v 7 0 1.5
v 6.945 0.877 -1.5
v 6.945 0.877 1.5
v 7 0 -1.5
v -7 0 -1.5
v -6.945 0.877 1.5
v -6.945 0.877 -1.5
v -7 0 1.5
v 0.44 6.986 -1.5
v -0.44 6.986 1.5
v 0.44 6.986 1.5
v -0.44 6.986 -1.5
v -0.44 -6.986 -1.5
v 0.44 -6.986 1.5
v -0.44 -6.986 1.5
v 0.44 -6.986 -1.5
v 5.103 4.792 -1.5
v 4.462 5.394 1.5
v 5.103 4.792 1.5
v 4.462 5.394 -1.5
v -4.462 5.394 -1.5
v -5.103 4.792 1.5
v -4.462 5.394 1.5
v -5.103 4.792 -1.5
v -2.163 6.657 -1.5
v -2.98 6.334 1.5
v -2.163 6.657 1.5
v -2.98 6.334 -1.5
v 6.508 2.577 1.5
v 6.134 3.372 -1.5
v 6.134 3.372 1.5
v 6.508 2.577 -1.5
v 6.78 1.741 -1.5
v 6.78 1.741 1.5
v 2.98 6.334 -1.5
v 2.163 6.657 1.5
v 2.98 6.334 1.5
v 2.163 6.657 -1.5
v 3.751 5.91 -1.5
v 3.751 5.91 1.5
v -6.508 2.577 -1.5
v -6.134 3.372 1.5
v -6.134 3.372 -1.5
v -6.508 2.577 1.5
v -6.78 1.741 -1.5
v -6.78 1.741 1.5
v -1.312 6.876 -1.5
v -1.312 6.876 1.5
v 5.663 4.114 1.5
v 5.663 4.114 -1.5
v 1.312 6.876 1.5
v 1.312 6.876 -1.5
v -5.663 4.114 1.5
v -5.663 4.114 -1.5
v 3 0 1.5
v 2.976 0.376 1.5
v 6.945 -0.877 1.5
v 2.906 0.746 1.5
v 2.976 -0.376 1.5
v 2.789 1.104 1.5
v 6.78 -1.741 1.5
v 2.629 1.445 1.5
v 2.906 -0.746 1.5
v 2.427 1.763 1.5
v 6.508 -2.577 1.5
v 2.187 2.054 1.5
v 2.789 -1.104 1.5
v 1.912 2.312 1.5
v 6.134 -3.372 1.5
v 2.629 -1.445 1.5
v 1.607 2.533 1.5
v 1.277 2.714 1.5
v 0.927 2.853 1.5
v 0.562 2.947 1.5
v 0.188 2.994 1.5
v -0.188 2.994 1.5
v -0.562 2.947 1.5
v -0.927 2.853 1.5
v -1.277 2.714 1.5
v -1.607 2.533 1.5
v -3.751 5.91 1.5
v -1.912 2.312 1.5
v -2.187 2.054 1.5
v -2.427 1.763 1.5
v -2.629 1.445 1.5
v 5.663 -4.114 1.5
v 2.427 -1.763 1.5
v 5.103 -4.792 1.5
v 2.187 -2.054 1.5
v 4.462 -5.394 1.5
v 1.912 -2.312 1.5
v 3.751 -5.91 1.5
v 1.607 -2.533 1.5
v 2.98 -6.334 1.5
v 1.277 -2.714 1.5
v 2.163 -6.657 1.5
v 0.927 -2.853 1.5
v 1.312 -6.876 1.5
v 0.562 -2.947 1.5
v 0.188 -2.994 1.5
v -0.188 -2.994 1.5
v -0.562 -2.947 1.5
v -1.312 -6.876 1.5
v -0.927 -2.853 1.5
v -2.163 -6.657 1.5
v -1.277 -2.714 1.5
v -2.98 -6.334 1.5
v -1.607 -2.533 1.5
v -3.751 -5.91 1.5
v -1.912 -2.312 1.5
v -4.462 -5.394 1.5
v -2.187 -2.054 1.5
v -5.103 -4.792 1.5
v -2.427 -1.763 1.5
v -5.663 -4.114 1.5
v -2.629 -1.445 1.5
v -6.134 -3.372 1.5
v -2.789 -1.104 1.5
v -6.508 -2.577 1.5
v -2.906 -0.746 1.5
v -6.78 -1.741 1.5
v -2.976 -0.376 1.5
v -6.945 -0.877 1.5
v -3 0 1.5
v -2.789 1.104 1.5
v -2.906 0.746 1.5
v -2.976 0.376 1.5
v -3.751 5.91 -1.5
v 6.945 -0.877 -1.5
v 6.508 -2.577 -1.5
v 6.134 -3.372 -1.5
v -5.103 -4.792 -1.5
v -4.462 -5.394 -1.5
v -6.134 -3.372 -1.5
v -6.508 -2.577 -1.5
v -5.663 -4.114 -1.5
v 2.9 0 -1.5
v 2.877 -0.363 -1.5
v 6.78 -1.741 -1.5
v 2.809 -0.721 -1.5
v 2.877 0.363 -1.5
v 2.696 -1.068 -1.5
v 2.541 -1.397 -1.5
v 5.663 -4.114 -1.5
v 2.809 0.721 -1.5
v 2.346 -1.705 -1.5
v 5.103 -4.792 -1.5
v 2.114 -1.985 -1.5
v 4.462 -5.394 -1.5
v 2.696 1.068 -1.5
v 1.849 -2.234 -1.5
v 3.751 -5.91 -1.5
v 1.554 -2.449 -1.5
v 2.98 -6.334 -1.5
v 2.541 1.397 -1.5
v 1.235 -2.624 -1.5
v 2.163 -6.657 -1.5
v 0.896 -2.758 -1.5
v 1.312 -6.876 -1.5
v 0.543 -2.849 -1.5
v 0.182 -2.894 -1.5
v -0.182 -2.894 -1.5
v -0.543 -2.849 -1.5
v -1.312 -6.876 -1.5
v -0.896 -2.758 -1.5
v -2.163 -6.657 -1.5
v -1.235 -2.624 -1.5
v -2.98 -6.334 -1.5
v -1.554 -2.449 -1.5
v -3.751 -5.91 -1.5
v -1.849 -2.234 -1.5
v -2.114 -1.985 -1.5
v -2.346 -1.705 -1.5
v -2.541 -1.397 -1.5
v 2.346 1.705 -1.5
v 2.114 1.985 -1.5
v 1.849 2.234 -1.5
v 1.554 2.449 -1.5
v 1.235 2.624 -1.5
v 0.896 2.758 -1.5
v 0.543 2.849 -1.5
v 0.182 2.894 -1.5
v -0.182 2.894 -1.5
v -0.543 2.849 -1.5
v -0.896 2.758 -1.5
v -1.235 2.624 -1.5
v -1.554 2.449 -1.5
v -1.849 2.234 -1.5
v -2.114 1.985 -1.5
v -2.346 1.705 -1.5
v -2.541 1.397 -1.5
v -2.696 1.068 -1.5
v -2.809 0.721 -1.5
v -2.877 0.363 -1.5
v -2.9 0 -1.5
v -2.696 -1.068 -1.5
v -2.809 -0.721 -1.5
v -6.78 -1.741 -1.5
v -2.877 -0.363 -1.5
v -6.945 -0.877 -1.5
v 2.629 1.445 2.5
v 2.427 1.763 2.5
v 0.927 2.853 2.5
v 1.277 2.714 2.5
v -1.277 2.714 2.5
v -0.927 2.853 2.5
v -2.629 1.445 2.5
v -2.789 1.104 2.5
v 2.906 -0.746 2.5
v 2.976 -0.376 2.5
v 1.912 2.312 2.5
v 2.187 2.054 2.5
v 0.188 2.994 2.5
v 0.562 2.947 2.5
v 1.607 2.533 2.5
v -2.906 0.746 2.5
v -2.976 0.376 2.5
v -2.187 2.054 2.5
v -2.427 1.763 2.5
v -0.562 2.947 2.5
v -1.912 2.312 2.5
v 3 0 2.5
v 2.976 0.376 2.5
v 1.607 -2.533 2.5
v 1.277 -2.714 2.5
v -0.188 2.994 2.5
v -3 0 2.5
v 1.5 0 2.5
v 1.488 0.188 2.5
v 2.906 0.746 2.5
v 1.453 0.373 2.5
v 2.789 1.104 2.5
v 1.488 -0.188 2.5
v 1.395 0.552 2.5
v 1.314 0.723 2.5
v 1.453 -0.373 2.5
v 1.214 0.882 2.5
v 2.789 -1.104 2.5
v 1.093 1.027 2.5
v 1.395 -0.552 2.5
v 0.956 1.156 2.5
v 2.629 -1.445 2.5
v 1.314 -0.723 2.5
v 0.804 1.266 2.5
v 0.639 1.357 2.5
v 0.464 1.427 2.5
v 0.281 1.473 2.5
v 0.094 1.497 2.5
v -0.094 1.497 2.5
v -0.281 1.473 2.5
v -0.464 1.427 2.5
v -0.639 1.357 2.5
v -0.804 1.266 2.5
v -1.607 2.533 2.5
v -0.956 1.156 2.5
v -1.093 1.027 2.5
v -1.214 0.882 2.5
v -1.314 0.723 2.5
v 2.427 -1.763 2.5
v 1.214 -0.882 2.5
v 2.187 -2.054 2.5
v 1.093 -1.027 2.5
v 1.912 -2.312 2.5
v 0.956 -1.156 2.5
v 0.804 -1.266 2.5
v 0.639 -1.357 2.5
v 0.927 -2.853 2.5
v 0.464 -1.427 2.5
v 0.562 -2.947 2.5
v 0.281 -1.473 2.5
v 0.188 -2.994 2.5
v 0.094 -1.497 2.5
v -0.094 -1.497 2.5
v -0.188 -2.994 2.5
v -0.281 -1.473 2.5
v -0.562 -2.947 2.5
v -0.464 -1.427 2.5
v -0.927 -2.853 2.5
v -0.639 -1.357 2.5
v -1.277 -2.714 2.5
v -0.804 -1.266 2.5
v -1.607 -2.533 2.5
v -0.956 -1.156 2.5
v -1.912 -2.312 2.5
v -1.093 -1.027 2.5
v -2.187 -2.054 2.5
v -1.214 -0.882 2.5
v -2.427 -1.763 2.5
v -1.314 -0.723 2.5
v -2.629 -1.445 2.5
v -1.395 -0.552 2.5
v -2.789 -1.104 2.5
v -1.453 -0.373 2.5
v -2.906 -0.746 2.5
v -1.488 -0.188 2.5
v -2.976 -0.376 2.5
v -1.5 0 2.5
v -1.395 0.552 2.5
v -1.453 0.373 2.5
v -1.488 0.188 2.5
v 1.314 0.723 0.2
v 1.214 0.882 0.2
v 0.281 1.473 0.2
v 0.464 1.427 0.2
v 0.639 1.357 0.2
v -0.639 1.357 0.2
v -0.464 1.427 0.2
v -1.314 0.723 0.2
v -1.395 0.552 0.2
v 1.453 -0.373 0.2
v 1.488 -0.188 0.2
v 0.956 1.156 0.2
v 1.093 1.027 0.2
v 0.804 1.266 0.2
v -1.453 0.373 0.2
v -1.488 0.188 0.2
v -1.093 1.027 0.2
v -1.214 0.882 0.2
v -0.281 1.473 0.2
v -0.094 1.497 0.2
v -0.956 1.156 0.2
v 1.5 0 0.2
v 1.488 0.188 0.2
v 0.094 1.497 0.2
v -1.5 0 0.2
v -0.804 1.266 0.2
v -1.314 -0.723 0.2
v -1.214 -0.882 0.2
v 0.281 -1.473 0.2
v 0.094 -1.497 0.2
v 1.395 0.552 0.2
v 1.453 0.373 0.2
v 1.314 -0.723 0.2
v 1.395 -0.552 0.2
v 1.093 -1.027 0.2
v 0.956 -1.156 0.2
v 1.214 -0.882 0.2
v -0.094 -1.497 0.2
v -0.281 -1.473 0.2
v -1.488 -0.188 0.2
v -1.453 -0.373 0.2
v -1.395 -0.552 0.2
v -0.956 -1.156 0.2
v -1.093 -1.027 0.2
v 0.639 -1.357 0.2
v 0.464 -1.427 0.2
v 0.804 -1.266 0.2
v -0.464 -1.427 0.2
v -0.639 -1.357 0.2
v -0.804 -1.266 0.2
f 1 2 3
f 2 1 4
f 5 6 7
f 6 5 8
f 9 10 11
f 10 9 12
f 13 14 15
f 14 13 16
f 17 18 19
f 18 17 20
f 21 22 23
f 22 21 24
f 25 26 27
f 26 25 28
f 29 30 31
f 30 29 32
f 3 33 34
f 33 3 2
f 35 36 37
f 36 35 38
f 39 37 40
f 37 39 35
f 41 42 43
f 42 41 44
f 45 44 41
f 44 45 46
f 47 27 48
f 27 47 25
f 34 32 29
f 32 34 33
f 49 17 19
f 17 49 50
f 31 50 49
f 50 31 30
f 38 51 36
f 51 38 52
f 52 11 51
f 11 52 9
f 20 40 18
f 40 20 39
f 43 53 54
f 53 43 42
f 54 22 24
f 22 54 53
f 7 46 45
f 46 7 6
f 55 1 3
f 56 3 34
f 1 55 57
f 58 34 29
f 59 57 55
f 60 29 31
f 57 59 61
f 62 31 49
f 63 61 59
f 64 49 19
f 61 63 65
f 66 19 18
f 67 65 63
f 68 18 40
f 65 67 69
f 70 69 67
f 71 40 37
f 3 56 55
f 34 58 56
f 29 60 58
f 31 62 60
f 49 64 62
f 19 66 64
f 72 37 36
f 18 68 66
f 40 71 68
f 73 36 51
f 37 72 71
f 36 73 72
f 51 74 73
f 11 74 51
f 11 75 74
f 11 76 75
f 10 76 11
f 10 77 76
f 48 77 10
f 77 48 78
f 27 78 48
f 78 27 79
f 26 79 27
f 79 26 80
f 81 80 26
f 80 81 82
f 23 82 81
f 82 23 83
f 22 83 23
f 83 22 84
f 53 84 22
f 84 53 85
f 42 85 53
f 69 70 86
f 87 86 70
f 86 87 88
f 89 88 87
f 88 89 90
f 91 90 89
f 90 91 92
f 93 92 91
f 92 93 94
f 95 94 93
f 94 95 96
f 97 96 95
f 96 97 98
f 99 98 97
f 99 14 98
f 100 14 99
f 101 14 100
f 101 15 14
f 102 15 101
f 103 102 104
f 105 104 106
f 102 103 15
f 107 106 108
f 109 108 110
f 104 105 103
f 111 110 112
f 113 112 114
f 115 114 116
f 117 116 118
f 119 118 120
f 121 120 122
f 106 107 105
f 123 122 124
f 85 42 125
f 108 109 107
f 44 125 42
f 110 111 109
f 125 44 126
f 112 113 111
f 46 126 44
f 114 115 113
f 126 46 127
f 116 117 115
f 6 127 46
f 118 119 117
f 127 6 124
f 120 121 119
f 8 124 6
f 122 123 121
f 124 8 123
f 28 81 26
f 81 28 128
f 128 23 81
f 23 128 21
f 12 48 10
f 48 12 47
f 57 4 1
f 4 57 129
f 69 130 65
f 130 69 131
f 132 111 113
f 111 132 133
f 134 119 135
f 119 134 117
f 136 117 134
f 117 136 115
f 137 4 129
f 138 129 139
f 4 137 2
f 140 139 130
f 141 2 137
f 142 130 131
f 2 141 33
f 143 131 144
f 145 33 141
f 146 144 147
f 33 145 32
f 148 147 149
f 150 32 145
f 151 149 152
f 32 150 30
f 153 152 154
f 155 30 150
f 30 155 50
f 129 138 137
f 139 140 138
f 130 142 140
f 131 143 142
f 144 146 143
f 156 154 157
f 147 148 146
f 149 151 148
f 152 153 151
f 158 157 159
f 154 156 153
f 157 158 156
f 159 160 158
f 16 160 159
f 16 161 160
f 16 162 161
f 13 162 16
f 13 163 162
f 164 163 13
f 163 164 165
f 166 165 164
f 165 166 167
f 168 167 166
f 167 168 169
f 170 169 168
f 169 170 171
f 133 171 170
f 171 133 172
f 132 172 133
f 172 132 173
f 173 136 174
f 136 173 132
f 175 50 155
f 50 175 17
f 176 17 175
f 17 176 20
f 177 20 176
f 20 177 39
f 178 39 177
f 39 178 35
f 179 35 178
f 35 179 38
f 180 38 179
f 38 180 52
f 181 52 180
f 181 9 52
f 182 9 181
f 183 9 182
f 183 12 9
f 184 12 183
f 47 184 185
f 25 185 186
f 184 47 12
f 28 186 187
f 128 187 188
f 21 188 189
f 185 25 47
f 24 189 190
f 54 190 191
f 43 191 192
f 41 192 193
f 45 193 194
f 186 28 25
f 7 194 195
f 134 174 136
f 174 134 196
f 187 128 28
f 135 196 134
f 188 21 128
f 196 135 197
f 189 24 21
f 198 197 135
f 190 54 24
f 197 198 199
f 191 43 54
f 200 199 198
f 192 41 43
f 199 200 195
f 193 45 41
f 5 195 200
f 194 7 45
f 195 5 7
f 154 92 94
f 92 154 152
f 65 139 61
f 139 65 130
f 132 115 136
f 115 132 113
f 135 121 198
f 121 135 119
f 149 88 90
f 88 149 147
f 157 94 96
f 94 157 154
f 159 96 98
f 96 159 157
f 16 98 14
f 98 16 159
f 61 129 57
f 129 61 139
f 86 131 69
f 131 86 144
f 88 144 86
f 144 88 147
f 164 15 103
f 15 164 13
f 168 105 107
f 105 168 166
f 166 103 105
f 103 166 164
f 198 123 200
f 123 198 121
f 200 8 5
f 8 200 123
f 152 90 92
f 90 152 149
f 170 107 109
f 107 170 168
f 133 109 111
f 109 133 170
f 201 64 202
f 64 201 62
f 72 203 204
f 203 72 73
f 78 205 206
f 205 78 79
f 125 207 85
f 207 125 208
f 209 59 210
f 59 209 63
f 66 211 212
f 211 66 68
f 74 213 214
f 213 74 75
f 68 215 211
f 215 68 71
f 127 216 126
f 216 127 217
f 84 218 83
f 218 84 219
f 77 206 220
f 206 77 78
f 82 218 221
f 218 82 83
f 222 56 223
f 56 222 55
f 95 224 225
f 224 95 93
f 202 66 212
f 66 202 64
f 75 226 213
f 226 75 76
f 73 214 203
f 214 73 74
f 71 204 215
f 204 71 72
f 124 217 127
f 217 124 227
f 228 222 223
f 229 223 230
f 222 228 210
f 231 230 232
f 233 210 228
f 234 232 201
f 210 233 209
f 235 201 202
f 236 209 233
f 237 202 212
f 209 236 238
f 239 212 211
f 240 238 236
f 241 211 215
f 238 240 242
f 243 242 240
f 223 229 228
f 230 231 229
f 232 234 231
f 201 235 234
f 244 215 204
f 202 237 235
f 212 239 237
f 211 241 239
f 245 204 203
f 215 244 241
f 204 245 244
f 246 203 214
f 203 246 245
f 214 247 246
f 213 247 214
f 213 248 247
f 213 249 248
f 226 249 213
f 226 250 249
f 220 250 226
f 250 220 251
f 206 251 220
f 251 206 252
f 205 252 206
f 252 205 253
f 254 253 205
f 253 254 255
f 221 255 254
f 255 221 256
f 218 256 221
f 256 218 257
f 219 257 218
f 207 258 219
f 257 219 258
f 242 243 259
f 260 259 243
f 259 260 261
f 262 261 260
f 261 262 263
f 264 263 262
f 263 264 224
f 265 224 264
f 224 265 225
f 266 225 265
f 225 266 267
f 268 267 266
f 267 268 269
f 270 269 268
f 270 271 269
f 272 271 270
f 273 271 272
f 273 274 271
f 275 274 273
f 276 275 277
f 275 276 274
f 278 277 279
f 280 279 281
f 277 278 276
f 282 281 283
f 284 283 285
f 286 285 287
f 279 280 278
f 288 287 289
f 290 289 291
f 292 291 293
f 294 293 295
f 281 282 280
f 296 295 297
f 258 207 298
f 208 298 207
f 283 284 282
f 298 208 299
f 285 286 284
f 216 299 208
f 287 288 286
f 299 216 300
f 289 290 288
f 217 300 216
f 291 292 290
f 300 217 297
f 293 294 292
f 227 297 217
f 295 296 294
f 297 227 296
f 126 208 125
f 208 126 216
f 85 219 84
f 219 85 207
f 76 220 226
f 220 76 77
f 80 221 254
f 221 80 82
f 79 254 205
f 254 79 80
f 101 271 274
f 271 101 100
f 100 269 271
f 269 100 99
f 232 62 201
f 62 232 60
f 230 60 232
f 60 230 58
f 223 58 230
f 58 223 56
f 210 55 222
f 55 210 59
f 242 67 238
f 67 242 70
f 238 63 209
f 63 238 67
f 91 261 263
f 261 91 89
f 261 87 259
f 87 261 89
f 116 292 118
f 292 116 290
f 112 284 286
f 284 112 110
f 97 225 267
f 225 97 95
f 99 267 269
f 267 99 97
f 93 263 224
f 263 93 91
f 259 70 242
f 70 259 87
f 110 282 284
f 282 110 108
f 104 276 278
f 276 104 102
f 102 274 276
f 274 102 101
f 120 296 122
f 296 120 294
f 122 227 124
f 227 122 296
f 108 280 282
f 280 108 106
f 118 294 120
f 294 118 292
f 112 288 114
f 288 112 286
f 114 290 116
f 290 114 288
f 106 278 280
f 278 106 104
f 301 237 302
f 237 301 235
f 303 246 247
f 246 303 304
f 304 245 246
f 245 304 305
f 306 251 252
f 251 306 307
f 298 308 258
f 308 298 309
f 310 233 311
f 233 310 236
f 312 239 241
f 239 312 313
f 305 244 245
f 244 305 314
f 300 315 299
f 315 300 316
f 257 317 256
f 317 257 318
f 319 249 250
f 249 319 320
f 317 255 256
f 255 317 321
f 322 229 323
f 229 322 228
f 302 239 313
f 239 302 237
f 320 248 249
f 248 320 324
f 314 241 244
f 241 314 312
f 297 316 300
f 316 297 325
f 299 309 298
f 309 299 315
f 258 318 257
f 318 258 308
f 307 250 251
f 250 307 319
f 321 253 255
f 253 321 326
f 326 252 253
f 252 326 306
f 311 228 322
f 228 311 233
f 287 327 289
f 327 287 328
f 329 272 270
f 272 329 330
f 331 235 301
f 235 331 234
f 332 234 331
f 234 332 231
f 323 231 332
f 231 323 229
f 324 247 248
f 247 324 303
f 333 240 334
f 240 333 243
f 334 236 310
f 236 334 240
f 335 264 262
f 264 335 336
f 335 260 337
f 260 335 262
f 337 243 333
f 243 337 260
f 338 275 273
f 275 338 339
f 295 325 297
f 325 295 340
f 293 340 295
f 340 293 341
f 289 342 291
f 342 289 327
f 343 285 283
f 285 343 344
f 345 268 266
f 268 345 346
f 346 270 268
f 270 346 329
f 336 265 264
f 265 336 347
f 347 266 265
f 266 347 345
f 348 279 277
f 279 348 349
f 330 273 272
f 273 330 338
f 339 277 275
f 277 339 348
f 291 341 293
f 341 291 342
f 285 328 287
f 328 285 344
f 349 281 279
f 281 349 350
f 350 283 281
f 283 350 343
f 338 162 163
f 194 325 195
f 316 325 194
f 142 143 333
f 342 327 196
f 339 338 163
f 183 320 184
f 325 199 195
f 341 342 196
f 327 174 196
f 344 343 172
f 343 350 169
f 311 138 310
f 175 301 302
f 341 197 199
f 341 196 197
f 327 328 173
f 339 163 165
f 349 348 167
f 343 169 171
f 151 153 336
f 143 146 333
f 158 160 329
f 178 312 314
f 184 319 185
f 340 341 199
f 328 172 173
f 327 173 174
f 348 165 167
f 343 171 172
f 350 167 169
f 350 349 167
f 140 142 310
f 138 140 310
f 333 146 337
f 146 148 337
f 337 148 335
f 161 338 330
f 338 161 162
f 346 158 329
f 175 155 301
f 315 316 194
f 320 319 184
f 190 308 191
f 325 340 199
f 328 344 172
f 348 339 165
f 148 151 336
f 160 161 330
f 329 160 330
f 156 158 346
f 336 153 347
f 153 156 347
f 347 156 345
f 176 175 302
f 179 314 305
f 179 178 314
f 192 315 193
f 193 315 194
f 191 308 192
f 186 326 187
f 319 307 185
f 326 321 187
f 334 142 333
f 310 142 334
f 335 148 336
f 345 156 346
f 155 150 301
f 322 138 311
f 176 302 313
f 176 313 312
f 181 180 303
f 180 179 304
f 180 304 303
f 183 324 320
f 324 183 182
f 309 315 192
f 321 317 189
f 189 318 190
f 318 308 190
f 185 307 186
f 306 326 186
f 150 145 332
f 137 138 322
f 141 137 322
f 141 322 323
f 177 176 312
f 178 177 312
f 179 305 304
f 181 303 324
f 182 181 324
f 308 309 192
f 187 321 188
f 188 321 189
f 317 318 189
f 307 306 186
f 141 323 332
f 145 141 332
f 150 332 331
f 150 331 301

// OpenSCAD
$fn = 50;


difference() {
	union() {
		translate(v = [0, 0, -1.5000000000]) {
			rotate(a = [0, 0, 0]) {
				cylinder(h = 3, r = 7.0000000000);
			}
		}
		translate(v = [0, 0, -1.5000000000]) {
			rotate(a = [0, 0, 0]) {
				cylinder(h = 4, r = 3.0000000000);
			}
		}
	}
	union() {
		translate(v = [0, 0, -125.0000000000]) {
			rotate(a = [0, 0, 0]) {
				cylinder(h = 250, r = 1.5000000000);
			}
		}
		#translate(v = [0, 0, 0.2000000000]) {
			rotate(a = [0, 180, 0]) {
				cylinder(h = 1.7000000000, r1 = 1.5000000000, r2 = 2.9000000000);
			}
		}
		#translate(v = [0, 0, 2.5000000000]) {
			rotate(a = [0, 180, 0]) {
				cylinder(h = 4, r = 1.5000000000);
			}
		}
	}
}
